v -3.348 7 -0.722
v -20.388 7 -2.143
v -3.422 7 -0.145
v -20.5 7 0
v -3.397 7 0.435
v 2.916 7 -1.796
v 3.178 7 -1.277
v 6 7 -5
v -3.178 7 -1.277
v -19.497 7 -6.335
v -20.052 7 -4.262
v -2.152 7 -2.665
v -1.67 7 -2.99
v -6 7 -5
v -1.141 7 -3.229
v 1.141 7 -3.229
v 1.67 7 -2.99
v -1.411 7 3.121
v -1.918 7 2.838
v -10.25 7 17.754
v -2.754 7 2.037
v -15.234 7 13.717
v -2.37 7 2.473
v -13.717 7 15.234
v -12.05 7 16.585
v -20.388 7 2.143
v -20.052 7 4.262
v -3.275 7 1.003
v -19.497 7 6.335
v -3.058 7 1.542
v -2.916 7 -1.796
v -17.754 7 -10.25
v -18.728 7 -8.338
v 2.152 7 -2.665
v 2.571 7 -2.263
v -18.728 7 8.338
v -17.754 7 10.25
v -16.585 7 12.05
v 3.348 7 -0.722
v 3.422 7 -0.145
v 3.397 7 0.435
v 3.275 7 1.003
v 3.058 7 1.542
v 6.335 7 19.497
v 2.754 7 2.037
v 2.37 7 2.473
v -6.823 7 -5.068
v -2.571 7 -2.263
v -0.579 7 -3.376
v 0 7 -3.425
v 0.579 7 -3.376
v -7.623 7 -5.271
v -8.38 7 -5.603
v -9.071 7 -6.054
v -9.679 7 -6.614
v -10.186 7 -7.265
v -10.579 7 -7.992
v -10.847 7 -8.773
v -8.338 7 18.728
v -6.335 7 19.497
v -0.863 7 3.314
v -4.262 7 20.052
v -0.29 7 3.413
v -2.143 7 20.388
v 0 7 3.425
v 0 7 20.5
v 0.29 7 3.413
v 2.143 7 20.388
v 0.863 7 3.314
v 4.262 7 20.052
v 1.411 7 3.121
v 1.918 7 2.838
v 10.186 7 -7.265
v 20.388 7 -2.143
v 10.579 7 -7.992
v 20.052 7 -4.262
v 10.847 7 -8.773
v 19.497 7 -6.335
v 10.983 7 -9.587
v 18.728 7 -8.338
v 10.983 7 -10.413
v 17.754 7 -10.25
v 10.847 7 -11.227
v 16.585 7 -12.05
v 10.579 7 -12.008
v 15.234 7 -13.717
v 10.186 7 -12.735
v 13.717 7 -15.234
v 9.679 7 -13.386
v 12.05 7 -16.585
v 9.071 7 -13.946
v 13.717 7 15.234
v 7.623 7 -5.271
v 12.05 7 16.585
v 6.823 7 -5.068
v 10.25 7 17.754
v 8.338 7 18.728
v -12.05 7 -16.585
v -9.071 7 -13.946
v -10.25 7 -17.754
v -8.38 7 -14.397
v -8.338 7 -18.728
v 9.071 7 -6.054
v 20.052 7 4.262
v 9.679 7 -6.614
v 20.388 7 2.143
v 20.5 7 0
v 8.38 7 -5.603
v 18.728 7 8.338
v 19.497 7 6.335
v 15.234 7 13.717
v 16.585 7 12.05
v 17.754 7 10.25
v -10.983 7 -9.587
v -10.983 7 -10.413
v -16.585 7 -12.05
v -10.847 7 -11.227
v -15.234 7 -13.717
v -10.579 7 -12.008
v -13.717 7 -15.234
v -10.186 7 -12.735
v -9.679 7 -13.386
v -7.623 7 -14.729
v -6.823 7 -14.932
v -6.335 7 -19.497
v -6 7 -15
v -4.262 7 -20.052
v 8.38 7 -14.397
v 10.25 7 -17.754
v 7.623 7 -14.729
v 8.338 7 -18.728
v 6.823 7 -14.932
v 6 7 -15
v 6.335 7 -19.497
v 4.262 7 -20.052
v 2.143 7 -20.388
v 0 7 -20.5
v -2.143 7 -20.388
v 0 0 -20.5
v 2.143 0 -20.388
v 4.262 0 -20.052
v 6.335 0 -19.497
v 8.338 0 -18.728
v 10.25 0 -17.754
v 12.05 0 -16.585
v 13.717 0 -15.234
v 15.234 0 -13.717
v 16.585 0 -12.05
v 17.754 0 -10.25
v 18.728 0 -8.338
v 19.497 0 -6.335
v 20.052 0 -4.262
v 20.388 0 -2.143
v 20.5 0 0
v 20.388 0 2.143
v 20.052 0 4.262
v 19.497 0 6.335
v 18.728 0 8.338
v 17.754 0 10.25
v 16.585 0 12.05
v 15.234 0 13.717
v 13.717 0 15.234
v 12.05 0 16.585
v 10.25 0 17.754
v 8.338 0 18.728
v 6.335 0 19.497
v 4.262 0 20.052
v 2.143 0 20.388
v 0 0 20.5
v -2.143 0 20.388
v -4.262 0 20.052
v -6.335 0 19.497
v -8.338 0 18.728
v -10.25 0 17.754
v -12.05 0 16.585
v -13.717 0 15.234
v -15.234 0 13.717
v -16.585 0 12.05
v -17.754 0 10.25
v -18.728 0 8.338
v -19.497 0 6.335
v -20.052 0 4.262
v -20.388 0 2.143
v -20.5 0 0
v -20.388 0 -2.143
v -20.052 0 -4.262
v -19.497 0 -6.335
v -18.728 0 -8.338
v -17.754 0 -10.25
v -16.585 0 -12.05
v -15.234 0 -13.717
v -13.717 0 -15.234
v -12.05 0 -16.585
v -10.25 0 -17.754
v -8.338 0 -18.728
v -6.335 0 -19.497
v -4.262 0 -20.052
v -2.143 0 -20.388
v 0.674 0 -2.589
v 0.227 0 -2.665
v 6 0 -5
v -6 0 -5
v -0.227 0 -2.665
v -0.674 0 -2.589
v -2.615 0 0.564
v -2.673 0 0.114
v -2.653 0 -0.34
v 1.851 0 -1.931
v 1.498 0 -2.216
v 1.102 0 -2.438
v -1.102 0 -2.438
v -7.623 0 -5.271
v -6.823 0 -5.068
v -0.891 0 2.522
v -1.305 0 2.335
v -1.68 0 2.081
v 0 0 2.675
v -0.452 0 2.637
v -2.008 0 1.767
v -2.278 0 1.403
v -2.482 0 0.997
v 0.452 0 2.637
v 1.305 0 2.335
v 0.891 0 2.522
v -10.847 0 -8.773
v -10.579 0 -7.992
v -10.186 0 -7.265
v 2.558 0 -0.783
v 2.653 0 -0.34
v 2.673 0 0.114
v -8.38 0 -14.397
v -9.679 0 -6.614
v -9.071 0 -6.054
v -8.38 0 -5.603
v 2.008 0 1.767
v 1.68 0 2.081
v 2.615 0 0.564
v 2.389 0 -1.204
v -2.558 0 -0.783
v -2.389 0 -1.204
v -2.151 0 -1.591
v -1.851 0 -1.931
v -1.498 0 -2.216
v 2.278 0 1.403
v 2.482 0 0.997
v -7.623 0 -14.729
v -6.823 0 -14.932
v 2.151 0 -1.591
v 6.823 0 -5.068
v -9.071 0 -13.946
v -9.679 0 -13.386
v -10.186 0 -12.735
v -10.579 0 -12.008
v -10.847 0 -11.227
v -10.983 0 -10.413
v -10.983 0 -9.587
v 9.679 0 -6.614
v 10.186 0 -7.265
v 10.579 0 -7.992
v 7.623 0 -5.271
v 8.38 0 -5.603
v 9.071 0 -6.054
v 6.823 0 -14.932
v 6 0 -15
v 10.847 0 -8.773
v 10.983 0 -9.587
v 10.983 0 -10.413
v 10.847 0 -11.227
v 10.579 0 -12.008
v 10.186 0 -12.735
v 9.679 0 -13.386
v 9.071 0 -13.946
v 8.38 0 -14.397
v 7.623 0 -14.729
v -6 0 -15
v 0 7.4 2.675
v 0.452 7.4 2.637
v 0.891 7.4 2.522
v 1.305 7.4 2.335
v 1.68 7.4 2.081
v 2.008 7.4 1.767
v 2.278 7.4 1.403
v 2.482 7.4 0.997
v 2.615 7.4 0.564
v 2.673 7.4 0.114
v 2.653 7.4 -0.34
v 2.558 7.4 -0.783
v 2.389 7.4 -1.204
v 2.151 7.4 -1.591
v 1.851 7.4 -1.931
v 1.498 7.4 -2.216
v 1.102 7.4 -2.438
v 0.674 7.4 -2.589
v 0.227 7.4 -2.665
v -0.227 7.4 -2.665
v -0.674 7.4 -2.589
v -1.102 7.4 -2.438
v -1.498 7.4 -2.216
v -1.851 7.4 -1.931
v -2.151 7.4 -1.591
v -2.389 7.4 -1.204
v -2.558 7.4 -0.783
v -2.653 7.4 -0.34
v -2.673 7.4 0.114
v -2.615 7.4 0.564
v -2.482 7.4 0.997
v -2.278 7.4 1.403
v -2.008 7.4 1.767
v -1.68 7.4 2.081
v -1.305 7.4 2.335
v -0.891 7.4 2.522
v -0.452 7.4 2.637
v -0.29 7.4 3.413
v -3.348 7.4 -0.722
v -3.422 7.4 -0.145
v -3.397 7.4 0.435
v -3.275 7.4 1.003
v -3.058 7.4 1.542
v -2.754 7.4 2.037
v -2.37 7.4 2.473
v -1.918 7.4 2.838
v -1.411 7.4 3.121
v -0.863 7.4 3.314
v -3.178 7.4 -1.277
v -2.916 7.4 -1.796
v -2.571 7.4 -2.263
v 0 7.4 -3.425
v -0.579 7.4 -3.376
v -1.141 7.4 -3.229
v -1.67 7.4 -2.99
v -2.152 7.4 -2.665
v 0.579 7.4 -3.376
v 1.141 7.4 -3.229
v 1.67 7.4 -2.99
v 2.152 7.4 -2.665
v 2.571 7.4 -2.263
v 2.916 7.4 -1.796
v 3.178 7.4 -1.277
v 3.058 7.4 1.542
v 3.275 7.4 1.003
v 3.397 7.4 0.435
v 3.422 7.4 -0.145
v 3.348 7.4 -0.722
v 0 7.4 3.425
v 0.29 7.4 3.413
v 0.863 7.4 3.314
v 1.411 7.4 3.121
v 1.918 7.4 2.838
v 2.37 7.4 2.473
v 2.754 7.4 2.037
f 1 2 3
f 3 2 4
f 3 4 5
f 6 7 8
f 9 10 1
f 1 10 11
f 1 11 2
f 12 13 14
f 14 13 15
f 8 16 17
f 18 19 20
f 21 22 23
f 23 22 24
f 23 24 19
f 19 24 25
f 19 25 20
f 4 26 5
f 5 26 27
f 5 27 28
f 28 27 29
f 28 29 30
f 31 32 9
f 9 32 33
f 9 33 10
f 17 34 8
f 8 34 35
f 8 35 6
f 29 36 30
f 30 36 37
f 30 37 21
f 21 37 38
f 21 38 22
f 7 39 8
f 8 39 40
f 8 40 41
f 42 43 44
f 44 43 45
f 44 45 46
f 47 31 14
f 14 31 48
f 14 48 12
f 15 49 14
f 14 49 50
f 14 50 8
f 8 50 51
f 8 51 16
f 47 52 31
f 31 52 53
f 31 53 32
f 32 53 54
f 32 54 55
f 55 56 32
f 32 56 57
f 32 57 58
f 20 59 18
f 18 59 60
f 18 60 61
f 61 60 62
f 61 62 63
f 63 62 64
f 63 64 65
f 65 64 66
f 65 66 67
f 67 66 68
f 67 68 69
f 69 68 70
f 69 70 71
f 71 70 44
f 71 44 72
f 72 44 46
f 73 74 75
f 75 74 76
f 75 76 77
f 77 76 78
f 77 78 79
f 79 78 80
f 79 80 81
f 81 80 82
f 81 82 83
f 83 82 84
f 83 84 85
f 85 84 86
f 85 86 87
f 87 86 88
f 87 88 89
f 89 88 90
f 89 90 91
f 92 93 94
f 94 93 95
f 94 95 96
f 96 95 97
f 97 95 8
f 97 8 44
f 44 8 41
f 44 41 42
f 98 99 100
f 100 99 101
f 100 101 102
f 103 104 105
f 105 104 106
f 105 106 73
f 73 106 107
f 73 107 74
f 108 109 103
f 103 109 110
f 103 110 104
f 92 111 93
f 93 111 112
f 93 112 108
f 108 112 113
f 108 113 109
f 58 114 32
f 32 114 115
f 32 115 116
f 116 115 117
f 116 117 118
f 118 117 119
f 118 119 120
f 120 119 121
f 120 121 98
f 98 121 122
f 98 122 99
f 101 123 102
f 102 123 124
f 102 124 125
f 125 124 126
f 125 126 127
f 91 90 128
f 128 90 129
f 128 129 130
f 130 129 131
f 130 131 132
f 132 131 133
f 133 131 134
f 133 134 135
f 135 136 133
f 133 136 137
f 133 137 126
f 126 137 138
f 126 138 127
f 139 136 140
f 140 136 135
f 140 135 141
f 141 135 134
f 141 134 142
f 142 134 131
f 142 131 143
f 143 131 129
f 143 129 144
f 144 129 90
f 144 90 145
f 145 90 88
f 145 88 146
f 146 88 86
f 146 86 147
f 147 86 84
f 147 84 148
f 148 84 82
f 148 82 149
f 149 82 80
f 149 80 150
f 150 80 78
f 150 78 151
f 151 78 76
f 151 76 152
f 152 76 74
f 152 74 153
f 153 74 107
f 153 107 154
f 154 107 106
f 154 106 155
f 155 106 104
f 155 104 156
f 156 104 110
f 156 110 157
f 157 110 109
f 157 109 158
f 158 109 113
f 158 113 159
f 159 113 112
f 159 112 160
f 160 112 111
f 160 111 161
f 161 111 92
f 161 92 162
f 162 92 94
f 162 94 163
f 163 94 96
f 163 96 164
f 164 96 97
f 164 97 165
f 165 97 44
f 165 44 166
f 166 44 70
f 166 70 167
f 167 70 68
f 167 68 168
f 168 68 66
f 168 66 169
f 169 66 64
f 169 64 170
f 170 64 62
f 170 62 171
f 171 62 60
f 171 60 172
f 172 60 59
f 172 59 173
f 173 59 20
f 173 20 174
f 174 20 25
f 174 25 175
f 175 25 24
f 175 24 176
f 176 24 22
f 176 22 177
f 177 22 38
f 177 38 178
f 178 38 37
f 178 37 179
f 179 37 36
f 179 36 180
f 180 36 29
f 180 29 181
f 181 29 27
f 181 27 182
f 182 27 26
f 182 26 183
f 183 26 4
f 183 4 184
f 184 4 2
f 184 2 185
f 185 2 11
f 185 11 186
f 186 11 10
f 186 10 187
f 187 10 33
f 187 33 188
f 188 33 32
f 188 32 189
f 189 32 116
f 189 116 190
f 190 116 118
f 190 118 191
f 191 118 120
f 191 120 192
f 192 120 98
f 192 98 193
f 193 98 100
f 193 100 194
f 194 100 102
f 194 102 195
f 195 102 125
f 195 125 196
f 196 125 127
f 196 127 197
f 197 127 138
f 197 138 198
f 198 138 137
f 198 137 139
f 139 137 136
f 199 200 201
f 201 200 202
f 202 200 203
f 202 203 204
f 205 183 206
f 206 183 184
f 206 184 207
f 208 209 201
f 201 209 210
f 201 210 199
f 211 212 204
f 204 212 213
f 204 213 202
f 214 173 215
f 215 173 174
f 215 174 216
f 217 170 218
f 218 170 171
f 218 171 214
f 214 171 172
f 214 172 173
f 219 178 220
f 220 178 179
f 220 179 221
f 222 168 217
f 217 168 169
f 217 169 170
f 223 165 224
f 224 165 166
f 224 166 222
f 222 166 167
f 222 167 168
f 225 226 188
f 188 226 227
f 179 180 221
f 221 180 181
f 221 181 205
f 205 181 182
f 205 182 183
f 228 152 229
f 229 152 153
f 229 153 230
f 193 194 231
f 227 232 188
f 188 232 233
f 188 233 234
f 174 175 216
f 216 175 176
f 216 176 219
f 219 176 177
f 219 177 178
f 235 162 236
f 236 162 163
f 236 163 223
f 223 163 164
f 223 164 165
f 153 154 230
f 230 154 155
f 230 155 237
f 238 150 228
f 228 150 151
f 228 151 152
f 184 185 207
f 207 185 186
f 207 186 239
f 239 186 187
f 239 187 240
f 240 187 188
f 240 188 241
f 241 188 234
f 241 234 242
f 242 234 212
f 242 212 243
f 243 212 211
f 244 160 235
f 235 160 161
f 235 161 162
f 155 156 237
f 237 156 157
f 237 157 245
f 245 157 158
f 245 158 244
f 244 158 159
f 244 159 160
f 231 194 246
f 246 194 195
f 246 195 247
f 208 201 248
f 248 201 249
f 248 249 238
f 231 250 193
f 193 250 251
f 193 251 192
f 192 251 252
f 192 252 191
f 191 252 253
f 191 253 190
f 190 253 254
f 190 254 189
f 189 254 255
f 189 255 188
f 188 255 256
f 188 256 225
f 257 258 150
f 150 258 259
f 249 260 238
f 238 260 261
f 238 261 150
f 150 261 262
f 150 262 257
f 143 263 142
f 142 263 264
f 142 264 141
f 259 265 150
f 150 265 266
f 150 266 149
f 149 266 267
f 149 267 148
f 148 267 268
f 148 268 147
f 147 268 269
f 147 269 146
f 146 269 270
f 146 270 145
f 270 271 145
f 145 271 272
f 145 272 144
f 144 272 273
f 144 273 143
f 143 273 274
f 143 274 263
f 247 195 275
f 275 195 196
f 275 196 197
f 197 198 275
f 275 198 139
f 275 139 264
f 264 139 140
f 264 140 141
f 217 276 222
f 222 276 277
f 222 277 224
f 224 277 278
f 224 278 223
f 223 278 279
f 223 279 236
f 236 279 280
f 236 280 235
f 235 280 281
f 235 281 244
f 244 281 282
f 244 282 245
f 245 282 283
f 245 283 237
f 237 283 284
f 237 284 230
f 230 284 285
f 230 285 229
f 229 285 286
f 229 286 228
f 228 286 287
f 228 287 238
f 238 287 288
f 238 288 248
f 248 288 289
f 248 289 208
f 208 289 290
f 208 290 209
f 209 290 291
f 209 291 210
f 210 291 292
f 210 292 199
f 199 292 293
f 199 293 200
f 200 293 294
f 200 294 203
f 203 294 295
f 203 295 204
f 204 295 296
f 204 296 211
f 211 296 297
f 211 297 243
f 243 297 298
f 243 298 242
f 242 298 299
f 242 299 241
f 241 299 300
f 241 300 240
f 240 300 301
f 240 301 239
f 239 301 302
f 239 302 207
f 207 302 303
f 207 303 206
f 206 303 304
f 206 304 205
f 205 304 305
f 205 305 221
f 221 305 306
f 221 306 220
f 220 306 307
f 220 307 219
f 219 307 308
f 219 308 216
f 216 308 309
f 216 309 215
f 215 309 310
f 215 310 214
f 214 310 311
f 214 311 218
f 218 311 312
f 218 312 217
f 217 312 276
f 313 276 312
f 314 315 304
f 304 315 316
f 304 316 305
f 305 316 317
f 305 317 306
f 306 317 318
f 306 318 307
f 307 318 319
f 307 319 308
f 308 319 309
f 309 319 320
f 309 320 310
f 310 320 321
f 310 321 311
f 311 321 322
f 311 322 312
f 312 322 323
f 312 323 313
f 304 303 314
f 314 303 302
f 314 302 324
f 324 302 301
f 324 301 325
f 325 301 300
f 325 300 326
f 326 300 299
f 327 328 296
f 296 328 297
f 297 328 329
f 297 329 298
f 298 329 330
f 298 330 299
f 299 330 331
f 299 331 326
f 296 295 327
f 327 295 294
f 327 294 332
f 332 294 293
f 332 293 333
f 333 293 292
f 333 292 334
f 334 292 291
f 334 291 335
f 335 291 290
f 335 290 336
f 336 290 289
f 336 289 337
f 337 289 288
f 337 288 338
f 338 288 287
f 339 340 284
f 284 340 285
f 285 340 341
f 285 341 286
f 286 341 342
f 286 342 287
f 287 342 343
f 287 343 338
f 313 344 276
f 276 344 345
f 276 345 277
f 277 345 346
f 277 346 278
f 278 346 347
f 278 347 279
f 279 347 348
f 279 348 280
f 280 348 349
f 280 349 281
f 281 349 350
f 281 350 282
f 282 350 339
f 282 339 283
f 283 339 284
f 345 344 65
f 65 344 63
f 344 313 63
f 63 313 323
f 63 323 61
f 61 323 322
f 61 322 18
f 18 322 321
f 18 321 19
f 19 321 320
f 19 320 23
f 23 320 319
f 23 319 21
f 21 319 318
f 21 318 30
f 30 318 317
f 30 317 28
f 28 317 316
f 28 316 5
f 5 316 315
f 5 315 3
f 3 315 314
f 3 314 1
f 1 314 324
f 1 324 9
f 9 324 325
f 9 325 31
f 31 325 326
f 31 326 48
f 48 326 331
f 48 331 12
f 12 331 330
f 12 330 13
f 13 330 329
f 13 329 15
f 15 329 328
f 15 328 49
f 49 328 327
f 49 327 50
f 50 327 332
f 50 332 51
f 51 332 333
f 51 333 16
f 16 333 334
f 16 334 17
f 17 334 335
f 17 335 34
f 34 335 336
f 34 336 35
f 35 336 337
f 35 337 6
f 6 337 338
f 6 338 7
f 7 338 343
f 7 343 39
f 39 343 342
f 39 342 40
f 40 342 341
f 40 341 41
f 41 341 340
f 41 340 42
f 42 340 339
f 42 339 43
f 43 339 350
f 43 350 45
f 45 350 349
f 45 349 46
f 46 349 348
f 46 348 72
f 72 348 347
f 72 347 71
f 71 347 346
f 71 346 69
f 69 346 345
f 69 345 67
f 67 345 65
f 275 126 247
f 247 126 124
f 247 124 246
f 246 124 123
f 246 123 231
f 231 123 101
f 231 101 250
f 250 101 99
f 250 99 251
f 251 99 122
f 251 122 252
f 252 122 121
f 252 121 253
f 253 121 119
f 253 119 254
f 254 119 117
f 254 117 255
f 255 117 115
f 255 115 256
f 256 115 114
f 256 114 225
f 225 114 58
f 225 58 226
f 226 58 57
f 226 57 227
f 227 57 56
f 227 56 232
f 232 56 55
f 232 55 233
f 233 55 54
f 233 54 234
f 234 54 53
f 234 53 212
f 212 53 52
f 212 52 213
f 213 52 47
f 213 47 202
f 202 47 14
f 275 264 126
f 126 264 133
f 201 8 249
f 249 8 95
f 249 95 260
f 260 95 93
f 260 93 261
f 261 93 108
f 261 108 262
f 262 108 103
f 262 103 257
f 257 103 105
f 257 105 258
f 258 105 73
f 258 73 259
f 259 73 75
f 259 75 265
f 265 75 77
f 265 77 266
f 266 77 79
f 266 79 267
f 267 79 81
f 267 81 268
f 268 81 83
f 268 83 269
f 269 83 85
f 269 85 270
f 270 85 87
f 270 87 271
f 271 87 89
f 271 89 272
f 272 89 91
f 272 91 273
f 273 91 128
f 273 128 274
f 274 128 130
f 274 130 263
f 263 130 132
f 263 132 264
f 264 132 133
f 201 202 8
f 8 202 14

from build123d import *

# Parameters (mm, degrees)
SKETCH1_R           = 20.5
BOSS_EXTRUDE1_DEPTH = 7
SKETCH2_R           = 2.675
CUT_EXTRUDE1_DEPTH  = 7
BOSS_EXTRUDE2_START = 0.4
SKETCH3_R           = 3.425
SKETCH3_R_2         = 2.675
BOSS_EXTRUDE2_DEPTH = 0.4
CUT_EXTRUDE3_DEPTH  = 7


with BuildPart() as part:
    # Sketch1 → Boss-Extrude1 (new body)
    with BuildSketch(Plane(origin=(0, 0, 0), x_dir=(1, 0, 0), z_dir=(0, 1, 0))):
        with Locations(Location((0, 0, 0), (0, 0, 270))):
            Circle(SKETCH1_R)
    extrude(amount=BOSS_EXTRUDE1_DEPTH)

    # Sketch2 → Cut-Extrude1 (cut)
    with BuildSketch(Plane(origin=(0, 7, 0), x_dir=(1, 0, 0), z_dir=(0, 1, 0))):
        with Locations(Location((0, 0, 0), (0, 0, 270))):
            Circle(SKETCH2_R)
    extrude(amount=-CUT_EXTRUDE1_DEPTH, mode=Mode.SUBTRACT)

    # Sketch3 → Boss-Extrude2 (add)
    with BuildSketch(Plane(origin=(0, 7, 0), x_dir=(1, 0, 0), z_dir=(0, 1, 0)).offset(BOSS_EXTRUDE2_START)):
        with Locations(Location((0, 0, 0), (0, 0, 270))):
            Circle(SKETCH3_R)
        with Locations(Location((0, 0, 0), (0, 0, 270))):
            Circle(SKETCH3_R_2, mode=Mode.SUBTRACT)
    extrude(amount=-BOSS_EXTRUDE2_DEPTH)

    # Sketch5 → Cut-Extrude3 (cut)
    with BuildSketch(Plane(origin=(0, 7, 0), x_dir=(1, 0, 0), z_dir=(0, 1, 0))):
        with BuildLine():
            Line((-6, 15), (6, 15))
            ThreePointArc((6, 15), (11, 10), (6, 5))
            Line((6, 5), (-6, 5))
            ThreePointArc((-6, 5), (-11, 10), (-6, 15))
        make_face()
    extrude(amount=-CUT_EXTRUDE3_DEPTH, mode=Mode.SUBTRACT)


solid = part.part
